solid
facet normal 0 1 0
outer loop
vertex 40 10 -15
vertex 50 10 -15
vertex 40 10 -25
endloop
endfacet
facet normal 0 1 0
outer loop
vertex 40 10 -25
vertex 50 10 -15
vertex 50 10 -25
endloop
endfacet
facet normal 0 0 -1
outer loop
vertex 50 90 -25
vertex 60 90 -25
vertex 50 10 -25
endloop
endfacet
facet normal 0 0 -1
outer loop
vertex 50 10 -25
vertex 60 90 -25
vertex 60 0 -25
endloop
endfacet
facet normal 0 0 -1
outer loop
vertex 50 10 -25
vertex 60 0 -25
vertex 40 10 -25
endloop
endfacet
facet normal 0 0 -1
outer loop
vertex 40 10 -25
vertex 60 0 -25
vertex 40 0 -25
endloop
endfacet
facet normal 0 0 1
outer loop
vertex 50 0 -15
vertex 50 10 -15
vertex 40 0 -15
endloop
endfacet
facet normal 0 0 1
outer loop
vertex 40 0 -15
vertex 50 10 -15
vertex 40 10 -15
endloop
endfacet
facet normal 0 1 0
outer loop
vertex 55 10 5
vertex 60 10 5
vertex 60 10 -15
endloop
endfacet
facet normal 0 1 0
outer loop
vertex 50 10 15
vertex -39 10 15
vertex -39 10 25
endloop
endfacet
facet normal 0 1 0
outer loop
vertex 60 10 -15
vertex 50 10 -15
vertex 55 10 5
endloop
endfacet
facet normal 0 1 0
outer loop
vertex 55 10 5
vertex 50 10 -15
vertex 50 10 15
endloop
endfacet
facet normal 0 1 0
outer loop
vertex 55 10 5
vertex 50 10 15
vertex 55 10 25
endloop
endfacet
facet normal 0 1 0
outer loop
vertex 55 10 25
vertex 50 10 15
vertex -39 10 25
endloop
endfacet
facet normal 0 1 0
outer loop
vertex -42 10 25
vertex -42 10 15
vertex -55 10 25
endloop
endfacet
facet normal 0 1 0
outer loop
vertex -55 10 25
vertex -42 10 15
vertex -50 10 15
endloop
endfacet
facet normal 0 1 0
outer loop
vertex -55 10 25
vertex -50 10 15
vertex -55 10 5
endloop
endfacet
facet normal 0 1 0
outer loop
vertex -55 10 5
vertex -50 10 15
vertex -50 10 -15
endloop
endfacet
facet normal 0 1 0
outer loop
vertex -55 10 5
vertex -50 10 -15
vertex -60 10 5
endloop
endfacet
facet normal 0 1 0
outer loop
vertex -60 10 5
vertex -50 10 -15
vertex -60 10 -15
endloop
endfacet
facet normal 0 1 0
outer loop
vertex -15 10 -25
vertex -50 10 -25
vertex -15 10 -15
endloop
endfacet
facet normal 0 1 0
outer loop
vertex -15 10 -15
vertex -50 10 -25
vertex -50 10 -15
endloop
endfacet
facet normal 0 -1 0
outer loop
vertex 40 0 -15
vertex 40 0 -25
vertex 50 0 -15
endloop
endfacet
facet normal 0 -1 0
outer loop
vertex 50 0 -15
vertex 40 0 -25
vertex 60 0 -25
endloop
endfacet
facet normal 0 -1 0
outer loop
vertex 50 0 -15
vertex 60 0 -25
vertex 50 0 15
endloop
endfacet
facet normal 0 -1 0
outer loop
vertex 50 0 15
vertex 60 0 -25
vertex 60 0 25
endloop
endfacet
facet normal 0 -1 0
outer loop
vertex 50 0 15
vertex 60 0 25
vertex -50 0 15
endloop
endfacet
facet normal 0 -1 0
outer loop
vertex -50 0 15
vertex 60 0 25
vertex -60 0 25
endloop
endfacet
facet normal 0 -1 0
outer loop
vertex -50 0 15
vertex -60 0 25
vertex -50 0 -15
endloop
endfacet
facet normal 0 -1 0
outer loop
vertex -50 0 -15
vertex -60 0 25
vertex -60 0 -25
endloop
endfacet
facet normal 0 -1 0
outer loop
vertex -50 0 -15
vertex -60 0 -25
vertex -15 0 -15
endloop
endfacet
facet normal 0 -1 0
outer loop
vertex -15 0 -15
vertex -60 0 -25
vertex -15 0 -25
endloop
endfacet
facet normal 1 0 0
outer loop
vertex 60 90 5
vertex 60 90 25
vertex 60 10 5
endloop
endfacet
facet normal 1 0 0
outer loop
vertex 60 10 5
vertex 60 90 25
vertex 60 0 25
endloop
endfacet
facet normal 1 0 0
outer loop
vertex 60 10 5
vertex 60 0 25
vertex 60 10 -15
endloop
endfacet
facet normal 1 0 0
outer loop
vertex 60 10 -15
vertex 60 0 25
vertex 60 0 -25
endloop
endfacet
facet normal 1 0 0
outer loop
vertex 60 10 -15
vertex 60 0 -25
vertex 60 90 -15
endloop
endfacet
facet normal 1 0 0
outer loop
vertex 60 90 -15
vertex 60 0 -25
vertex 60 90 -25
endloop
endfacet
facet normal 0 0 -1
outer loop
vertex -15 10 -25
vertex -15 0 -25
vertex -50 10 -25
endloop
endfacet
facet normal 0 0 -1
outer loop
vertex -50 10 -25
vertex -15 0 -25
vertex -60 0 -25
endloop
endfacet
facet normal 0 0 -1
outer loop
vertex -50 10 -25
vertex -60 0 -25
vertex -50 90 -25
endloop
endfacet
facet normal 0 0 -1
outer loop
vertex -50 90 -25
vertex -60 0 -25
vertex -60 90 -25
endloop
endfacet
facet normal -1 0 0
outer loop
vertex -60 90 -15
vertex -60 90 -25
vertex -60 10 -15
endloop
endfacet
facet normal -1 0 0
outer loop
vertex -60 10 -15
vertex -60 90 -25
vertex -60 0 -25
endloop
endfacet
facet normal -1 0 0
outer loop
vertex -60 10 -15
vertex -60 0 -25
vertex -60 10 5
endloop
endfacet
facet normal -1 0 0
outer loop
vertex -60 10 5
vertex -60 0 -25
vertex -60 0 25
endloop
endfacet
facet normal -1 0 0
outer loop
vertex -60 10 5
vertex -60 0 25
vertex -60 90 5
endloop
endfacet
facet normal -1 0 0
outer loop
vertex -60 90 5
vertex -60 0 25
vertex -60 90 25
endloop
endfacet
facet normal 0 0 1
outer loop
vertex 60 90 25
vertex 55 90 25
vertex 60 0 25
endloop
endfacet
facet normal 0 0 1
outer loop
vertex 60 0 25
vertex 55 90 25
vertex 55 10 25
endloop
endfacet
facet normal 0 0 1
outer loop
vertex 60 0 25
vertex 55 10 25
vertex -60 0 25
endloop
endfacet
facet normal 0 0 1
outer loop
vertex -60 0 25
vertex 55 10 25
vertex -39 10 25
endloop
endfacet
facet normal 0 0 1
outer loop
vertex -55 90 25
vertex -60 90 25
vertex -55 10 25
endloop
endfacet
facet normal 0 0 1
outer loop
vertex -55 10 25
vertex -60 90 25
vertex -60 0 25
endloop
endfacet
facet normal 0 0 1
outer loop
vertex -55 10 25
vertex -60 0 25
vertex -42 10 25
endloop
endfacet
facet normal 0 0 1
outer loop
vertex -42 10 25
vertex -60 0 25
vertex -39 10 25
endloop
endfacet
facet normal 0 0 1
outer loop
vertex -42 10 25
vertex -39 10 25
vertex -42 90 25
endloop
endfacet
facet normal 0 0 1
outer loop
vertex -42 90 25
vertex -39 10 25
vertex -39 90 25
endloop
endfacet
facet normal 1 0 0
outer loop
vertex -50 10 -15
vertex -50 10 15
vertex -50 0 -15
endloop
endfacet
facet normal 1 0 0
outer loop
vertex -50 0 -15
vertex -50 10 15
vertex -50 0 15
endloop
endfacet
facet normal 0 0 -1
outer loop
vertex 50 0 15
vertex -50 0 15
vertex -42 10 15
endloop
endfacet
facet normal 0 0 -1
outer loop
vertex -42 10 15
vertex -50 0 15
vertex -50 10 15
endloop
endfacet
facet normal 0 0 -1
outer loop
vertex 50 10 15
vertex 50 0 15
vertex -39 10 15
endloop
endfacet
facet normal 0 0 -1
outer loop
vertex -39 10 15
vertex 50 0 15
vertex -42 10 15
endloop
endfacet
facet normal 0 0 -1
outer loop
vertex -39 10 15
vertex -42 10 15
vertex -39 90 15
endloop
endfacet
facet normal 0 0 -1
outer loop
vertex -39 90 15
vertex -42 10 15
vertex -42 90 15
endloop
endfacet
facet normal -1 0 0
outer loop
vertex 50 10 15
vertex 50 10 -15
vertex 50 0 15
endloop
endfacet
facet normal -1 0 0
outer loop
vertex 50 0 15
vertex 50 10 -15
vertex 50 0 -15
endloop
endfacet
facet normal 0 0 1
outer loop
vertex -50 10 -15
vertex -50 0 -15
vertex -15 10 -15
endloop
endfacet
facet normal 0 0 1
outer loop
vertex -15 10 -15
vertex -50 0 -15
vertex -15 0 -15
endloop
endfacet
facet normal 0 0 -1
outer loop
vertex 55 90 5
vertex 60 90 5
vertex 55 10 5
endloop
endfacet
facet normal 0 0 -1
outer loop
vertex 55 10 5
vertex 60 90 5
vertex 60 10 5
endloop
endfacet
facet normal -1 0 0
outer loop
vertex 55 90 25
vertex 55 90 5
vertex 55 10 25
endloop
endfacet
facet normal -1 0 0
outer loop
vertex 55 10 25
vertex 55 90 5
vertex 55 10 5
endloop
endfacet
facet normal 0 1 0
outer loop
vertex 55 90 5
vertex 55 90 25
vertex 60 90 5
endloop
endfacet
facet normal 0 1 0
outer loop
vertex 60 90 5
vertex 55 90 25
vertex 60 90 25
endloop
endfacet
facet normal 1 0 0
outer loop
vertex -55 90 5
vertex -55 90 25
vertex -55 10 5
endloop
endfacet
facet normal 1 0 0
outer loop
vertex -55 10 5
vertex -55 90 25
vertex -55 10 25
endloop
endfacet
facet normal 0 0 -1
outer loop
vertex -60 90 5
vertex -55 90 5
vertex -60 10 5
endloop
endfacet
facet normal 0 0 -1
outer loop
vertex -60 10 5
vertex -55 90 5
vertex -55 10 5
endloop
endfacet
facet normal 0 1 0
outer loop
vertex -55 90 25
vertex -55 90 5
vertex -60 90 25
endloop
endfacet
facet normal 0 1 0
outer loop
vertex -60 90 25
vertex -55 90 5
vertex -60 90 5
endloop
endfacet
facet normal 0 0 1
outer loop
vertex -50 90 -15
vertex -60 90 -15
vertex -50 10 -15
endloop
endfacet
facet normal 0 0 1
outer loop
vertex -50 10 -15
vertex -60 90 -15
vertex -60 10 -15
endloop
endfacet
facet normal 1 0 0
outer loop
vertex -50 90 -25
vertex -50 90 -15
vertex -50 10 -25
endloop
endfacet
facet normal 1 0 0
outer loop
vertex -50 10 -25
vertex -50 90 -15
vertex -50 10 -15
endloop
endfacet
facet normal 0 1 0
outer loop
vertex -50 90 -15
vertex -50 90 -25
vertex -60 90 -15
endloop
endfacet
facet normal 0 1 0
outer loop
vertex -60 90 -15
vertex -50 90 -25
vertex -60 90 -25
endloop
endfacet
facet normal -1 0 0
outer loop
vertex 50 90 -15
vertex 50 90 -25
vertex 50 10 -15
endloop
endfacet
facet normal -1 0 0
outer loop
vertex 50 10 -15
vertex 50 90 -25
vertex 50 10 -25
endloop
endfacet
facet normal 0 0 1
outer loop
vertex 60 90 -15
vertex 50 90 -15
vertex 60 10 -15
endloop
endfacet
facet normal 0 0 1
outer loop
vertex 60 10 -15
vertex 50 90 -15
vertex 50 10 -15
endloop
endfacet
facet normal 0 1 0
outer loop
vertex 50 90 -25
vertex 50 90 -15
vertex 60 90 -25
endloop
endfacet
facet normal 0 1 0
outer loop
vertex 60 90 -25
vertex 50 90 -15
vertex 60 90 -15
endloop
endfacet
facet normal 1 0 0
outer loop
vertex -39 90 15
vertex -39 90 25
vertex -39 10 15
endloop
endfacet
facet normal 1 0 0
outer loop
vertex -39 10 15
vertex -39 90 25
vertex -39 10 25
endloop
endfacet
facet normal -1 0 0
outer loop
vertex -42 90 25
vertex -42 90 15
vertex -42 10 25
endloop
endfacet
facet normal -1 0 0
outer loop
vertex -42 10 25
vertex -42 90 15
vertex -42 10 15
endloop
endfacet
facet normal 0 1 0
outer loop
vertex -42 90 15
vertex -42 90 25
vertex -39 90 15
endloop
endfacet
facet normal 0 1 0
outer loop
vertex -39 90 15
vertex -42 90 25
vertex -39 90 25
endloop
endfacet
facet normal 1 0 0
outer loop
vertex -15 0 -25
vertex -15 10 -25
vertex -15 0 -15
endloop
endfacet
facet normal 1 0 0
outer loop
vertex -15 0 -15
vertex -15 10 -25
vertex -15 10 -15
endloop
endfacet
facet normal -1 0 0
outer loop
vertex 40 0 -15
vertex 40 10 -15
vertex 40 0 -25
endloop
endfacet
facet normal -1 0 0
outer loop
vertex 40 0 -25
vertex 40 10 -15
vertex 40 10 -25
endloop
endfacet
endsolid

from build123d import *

# Parameters (mm, degrees)
SKETCH_1_W          = 120
SKETCH_1_H          = 50
SKETCH_1_W_2        = 100
SKETCH_1_H_2        = 30
EXTRUDE_1_DEPTH     = 10
SKETCH_2_W          = 5
SKETCH_2_H          = 20
SKETCH_2_W_2        = 10
SKETCH_2_H_2        = 10
SKETCH_2_W_3        = 3
EXTRUDE_2_DEPTH     = 80
SKETCH_3_W          = 55
SKETCH_3_H          = 10
CUT_EXTRUDE_1_DEPTH = 112.018016556


with BuildPart() as part:
    # 草图1 → 凸台-拉伸1 (new body)
    with BuildSketch(Plane(origin=(0, 0, 0), x_dir=(1, 0, 0), z_dir=(0, 1, 0))):
        Rectangle(SKETCH_1_W, SKETCH_1_H)
        Rectangle(SKETCH_1_W_2, SKETCH_1_H_2, mode=Mode.SUBTRACT)
    extrude(amount=EXTRUDE_1_DEPTH)

    # 草图2 → 凸台-拉伸2 (add)
    with BuildSketch(Plane(origin=(0, 10, 0), x_dir=(1, 0, 0), z_dir=(0, 1, 0))):
        with Locations((57.5, -15)):
            Rectangle(SKETCH_2_W, SKETCH_2_H)
        with Locations((-57.5, -15)):
            Rectangle(SKETCH_2_W, SKETCH_2_H)
        with Locations((-55, 20)):
            Rectangle(SKETCH_2_W_2, SKETCH_2_H_2)
        with Locations((55, 20)):
            Rectangle(SKETCH_2_W_2, SKETCH_2_H_2)
        with Locations((-40.5, -20)):
            Rectangle(SKETCH_2_W_3, SKETCH_2_H_2)
    extrude(amount=EXTRUDE_2_DEPTH)

    # 草图3 → 切除-拉伸1 (cut, through all)
    with BuildSketch(Plane.XZ):
        with Locations((12.5, -20)):
            Rectangle(SKETCH_3_W, SKETCH_3_H)
    extrude(amount=-CUT_EXTRUDE_1_DEPTH, mode=Mode.SUBTRACT)


solid = part.part
